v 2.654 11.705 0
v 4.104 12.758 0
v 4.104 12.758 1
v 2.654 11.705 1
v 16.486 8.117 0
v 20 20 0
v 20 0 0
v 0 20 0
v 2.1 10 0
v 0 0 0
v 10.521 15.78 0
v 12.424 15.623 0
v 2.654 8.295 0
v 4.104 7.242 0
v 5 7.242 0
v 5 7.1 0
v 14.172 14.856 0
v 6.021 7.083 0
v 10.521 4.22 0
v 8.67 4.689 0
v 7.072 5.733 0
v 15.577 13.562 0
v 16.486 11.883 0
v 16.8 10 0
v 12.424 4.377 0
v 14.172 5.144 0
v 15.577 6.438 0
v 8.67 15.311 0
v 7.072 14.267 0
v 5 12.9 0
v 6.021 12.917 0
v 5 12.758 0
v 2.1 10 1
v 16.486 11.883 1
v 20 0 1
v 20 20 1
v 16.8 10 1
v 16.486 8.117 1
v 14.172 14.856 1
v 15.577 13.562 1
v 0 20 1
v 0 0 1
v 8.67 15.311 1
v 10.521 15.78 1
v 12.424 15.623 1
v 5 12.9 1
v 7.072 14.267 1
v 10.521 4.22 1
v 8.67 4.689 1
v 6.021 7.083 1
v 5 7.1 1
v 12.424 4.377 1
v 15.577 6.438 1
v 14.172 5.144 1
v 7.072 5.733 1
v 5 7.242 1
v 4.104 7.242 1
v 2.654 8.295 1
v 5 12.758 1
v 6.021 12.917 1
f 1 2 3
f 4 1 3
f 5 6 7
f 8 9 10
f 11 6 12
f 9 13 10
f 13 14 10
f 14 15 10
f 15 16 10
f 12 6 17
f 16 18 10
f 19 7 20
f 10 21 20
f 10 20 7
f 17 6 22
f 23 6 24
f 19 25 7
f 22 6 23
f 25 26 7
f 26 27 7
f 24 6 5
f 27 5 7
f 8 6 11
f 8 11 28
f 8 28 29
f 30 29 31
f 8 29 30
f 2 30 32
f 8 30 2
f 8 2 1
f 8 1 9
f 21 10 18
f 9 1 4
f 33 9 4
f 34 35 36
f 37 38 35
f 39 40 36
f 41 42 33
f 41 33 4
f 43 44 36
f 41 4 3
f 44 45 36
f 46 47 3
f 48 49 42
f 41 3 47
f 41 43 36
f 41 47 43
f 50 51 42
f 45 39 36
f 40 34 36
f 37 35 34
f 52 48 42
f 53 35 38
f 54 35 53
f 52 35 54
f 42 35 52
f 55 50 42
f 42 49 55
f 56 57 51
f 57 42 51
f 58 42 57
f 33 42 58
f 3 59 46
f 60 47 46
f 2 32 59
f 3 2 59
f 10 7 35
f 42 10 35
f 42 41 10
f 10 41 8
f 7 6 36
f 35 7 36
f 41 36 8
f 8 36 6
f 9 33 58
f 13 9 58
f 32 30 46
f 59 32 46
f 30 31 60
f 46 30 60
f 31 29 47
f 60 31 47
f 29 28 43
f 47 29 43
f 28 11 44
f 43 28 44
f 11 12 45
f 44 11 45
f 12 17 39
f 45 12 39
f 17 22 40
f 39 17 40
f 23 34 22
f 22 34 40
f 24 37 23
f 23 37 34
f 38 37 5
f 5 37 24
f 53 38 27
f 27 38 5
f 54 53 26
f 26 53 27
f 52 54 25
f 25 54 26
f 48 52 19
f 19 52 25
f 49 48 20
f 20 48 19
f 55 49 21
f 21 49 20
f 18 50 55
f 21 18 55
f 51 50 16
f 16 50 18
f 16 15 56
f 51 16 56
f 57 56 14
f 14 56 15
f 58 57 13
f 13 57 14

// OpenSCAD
linear_extrude(height=1)
servosocketwall();


module servosocketwall() {

 difference() {
  servowall();

  color("red")
  translate([011,10])
  servosocket();

 }

}

module servowall() {

polygon( [ [0,0],[20,0],[20,20],[0,20] ] , [   [0,1,2,3] ]);

}

module servosocket() {

	union() {
	circle (d=11.6);

	
	translate([-6,0])
	circle (d=5.8);
	
	
   polygon( [ [-6,-2.9],[-0,-3],[0,3],[-6,2.9] ] , [   [0,1,2,3] ]);
   }
	
}
